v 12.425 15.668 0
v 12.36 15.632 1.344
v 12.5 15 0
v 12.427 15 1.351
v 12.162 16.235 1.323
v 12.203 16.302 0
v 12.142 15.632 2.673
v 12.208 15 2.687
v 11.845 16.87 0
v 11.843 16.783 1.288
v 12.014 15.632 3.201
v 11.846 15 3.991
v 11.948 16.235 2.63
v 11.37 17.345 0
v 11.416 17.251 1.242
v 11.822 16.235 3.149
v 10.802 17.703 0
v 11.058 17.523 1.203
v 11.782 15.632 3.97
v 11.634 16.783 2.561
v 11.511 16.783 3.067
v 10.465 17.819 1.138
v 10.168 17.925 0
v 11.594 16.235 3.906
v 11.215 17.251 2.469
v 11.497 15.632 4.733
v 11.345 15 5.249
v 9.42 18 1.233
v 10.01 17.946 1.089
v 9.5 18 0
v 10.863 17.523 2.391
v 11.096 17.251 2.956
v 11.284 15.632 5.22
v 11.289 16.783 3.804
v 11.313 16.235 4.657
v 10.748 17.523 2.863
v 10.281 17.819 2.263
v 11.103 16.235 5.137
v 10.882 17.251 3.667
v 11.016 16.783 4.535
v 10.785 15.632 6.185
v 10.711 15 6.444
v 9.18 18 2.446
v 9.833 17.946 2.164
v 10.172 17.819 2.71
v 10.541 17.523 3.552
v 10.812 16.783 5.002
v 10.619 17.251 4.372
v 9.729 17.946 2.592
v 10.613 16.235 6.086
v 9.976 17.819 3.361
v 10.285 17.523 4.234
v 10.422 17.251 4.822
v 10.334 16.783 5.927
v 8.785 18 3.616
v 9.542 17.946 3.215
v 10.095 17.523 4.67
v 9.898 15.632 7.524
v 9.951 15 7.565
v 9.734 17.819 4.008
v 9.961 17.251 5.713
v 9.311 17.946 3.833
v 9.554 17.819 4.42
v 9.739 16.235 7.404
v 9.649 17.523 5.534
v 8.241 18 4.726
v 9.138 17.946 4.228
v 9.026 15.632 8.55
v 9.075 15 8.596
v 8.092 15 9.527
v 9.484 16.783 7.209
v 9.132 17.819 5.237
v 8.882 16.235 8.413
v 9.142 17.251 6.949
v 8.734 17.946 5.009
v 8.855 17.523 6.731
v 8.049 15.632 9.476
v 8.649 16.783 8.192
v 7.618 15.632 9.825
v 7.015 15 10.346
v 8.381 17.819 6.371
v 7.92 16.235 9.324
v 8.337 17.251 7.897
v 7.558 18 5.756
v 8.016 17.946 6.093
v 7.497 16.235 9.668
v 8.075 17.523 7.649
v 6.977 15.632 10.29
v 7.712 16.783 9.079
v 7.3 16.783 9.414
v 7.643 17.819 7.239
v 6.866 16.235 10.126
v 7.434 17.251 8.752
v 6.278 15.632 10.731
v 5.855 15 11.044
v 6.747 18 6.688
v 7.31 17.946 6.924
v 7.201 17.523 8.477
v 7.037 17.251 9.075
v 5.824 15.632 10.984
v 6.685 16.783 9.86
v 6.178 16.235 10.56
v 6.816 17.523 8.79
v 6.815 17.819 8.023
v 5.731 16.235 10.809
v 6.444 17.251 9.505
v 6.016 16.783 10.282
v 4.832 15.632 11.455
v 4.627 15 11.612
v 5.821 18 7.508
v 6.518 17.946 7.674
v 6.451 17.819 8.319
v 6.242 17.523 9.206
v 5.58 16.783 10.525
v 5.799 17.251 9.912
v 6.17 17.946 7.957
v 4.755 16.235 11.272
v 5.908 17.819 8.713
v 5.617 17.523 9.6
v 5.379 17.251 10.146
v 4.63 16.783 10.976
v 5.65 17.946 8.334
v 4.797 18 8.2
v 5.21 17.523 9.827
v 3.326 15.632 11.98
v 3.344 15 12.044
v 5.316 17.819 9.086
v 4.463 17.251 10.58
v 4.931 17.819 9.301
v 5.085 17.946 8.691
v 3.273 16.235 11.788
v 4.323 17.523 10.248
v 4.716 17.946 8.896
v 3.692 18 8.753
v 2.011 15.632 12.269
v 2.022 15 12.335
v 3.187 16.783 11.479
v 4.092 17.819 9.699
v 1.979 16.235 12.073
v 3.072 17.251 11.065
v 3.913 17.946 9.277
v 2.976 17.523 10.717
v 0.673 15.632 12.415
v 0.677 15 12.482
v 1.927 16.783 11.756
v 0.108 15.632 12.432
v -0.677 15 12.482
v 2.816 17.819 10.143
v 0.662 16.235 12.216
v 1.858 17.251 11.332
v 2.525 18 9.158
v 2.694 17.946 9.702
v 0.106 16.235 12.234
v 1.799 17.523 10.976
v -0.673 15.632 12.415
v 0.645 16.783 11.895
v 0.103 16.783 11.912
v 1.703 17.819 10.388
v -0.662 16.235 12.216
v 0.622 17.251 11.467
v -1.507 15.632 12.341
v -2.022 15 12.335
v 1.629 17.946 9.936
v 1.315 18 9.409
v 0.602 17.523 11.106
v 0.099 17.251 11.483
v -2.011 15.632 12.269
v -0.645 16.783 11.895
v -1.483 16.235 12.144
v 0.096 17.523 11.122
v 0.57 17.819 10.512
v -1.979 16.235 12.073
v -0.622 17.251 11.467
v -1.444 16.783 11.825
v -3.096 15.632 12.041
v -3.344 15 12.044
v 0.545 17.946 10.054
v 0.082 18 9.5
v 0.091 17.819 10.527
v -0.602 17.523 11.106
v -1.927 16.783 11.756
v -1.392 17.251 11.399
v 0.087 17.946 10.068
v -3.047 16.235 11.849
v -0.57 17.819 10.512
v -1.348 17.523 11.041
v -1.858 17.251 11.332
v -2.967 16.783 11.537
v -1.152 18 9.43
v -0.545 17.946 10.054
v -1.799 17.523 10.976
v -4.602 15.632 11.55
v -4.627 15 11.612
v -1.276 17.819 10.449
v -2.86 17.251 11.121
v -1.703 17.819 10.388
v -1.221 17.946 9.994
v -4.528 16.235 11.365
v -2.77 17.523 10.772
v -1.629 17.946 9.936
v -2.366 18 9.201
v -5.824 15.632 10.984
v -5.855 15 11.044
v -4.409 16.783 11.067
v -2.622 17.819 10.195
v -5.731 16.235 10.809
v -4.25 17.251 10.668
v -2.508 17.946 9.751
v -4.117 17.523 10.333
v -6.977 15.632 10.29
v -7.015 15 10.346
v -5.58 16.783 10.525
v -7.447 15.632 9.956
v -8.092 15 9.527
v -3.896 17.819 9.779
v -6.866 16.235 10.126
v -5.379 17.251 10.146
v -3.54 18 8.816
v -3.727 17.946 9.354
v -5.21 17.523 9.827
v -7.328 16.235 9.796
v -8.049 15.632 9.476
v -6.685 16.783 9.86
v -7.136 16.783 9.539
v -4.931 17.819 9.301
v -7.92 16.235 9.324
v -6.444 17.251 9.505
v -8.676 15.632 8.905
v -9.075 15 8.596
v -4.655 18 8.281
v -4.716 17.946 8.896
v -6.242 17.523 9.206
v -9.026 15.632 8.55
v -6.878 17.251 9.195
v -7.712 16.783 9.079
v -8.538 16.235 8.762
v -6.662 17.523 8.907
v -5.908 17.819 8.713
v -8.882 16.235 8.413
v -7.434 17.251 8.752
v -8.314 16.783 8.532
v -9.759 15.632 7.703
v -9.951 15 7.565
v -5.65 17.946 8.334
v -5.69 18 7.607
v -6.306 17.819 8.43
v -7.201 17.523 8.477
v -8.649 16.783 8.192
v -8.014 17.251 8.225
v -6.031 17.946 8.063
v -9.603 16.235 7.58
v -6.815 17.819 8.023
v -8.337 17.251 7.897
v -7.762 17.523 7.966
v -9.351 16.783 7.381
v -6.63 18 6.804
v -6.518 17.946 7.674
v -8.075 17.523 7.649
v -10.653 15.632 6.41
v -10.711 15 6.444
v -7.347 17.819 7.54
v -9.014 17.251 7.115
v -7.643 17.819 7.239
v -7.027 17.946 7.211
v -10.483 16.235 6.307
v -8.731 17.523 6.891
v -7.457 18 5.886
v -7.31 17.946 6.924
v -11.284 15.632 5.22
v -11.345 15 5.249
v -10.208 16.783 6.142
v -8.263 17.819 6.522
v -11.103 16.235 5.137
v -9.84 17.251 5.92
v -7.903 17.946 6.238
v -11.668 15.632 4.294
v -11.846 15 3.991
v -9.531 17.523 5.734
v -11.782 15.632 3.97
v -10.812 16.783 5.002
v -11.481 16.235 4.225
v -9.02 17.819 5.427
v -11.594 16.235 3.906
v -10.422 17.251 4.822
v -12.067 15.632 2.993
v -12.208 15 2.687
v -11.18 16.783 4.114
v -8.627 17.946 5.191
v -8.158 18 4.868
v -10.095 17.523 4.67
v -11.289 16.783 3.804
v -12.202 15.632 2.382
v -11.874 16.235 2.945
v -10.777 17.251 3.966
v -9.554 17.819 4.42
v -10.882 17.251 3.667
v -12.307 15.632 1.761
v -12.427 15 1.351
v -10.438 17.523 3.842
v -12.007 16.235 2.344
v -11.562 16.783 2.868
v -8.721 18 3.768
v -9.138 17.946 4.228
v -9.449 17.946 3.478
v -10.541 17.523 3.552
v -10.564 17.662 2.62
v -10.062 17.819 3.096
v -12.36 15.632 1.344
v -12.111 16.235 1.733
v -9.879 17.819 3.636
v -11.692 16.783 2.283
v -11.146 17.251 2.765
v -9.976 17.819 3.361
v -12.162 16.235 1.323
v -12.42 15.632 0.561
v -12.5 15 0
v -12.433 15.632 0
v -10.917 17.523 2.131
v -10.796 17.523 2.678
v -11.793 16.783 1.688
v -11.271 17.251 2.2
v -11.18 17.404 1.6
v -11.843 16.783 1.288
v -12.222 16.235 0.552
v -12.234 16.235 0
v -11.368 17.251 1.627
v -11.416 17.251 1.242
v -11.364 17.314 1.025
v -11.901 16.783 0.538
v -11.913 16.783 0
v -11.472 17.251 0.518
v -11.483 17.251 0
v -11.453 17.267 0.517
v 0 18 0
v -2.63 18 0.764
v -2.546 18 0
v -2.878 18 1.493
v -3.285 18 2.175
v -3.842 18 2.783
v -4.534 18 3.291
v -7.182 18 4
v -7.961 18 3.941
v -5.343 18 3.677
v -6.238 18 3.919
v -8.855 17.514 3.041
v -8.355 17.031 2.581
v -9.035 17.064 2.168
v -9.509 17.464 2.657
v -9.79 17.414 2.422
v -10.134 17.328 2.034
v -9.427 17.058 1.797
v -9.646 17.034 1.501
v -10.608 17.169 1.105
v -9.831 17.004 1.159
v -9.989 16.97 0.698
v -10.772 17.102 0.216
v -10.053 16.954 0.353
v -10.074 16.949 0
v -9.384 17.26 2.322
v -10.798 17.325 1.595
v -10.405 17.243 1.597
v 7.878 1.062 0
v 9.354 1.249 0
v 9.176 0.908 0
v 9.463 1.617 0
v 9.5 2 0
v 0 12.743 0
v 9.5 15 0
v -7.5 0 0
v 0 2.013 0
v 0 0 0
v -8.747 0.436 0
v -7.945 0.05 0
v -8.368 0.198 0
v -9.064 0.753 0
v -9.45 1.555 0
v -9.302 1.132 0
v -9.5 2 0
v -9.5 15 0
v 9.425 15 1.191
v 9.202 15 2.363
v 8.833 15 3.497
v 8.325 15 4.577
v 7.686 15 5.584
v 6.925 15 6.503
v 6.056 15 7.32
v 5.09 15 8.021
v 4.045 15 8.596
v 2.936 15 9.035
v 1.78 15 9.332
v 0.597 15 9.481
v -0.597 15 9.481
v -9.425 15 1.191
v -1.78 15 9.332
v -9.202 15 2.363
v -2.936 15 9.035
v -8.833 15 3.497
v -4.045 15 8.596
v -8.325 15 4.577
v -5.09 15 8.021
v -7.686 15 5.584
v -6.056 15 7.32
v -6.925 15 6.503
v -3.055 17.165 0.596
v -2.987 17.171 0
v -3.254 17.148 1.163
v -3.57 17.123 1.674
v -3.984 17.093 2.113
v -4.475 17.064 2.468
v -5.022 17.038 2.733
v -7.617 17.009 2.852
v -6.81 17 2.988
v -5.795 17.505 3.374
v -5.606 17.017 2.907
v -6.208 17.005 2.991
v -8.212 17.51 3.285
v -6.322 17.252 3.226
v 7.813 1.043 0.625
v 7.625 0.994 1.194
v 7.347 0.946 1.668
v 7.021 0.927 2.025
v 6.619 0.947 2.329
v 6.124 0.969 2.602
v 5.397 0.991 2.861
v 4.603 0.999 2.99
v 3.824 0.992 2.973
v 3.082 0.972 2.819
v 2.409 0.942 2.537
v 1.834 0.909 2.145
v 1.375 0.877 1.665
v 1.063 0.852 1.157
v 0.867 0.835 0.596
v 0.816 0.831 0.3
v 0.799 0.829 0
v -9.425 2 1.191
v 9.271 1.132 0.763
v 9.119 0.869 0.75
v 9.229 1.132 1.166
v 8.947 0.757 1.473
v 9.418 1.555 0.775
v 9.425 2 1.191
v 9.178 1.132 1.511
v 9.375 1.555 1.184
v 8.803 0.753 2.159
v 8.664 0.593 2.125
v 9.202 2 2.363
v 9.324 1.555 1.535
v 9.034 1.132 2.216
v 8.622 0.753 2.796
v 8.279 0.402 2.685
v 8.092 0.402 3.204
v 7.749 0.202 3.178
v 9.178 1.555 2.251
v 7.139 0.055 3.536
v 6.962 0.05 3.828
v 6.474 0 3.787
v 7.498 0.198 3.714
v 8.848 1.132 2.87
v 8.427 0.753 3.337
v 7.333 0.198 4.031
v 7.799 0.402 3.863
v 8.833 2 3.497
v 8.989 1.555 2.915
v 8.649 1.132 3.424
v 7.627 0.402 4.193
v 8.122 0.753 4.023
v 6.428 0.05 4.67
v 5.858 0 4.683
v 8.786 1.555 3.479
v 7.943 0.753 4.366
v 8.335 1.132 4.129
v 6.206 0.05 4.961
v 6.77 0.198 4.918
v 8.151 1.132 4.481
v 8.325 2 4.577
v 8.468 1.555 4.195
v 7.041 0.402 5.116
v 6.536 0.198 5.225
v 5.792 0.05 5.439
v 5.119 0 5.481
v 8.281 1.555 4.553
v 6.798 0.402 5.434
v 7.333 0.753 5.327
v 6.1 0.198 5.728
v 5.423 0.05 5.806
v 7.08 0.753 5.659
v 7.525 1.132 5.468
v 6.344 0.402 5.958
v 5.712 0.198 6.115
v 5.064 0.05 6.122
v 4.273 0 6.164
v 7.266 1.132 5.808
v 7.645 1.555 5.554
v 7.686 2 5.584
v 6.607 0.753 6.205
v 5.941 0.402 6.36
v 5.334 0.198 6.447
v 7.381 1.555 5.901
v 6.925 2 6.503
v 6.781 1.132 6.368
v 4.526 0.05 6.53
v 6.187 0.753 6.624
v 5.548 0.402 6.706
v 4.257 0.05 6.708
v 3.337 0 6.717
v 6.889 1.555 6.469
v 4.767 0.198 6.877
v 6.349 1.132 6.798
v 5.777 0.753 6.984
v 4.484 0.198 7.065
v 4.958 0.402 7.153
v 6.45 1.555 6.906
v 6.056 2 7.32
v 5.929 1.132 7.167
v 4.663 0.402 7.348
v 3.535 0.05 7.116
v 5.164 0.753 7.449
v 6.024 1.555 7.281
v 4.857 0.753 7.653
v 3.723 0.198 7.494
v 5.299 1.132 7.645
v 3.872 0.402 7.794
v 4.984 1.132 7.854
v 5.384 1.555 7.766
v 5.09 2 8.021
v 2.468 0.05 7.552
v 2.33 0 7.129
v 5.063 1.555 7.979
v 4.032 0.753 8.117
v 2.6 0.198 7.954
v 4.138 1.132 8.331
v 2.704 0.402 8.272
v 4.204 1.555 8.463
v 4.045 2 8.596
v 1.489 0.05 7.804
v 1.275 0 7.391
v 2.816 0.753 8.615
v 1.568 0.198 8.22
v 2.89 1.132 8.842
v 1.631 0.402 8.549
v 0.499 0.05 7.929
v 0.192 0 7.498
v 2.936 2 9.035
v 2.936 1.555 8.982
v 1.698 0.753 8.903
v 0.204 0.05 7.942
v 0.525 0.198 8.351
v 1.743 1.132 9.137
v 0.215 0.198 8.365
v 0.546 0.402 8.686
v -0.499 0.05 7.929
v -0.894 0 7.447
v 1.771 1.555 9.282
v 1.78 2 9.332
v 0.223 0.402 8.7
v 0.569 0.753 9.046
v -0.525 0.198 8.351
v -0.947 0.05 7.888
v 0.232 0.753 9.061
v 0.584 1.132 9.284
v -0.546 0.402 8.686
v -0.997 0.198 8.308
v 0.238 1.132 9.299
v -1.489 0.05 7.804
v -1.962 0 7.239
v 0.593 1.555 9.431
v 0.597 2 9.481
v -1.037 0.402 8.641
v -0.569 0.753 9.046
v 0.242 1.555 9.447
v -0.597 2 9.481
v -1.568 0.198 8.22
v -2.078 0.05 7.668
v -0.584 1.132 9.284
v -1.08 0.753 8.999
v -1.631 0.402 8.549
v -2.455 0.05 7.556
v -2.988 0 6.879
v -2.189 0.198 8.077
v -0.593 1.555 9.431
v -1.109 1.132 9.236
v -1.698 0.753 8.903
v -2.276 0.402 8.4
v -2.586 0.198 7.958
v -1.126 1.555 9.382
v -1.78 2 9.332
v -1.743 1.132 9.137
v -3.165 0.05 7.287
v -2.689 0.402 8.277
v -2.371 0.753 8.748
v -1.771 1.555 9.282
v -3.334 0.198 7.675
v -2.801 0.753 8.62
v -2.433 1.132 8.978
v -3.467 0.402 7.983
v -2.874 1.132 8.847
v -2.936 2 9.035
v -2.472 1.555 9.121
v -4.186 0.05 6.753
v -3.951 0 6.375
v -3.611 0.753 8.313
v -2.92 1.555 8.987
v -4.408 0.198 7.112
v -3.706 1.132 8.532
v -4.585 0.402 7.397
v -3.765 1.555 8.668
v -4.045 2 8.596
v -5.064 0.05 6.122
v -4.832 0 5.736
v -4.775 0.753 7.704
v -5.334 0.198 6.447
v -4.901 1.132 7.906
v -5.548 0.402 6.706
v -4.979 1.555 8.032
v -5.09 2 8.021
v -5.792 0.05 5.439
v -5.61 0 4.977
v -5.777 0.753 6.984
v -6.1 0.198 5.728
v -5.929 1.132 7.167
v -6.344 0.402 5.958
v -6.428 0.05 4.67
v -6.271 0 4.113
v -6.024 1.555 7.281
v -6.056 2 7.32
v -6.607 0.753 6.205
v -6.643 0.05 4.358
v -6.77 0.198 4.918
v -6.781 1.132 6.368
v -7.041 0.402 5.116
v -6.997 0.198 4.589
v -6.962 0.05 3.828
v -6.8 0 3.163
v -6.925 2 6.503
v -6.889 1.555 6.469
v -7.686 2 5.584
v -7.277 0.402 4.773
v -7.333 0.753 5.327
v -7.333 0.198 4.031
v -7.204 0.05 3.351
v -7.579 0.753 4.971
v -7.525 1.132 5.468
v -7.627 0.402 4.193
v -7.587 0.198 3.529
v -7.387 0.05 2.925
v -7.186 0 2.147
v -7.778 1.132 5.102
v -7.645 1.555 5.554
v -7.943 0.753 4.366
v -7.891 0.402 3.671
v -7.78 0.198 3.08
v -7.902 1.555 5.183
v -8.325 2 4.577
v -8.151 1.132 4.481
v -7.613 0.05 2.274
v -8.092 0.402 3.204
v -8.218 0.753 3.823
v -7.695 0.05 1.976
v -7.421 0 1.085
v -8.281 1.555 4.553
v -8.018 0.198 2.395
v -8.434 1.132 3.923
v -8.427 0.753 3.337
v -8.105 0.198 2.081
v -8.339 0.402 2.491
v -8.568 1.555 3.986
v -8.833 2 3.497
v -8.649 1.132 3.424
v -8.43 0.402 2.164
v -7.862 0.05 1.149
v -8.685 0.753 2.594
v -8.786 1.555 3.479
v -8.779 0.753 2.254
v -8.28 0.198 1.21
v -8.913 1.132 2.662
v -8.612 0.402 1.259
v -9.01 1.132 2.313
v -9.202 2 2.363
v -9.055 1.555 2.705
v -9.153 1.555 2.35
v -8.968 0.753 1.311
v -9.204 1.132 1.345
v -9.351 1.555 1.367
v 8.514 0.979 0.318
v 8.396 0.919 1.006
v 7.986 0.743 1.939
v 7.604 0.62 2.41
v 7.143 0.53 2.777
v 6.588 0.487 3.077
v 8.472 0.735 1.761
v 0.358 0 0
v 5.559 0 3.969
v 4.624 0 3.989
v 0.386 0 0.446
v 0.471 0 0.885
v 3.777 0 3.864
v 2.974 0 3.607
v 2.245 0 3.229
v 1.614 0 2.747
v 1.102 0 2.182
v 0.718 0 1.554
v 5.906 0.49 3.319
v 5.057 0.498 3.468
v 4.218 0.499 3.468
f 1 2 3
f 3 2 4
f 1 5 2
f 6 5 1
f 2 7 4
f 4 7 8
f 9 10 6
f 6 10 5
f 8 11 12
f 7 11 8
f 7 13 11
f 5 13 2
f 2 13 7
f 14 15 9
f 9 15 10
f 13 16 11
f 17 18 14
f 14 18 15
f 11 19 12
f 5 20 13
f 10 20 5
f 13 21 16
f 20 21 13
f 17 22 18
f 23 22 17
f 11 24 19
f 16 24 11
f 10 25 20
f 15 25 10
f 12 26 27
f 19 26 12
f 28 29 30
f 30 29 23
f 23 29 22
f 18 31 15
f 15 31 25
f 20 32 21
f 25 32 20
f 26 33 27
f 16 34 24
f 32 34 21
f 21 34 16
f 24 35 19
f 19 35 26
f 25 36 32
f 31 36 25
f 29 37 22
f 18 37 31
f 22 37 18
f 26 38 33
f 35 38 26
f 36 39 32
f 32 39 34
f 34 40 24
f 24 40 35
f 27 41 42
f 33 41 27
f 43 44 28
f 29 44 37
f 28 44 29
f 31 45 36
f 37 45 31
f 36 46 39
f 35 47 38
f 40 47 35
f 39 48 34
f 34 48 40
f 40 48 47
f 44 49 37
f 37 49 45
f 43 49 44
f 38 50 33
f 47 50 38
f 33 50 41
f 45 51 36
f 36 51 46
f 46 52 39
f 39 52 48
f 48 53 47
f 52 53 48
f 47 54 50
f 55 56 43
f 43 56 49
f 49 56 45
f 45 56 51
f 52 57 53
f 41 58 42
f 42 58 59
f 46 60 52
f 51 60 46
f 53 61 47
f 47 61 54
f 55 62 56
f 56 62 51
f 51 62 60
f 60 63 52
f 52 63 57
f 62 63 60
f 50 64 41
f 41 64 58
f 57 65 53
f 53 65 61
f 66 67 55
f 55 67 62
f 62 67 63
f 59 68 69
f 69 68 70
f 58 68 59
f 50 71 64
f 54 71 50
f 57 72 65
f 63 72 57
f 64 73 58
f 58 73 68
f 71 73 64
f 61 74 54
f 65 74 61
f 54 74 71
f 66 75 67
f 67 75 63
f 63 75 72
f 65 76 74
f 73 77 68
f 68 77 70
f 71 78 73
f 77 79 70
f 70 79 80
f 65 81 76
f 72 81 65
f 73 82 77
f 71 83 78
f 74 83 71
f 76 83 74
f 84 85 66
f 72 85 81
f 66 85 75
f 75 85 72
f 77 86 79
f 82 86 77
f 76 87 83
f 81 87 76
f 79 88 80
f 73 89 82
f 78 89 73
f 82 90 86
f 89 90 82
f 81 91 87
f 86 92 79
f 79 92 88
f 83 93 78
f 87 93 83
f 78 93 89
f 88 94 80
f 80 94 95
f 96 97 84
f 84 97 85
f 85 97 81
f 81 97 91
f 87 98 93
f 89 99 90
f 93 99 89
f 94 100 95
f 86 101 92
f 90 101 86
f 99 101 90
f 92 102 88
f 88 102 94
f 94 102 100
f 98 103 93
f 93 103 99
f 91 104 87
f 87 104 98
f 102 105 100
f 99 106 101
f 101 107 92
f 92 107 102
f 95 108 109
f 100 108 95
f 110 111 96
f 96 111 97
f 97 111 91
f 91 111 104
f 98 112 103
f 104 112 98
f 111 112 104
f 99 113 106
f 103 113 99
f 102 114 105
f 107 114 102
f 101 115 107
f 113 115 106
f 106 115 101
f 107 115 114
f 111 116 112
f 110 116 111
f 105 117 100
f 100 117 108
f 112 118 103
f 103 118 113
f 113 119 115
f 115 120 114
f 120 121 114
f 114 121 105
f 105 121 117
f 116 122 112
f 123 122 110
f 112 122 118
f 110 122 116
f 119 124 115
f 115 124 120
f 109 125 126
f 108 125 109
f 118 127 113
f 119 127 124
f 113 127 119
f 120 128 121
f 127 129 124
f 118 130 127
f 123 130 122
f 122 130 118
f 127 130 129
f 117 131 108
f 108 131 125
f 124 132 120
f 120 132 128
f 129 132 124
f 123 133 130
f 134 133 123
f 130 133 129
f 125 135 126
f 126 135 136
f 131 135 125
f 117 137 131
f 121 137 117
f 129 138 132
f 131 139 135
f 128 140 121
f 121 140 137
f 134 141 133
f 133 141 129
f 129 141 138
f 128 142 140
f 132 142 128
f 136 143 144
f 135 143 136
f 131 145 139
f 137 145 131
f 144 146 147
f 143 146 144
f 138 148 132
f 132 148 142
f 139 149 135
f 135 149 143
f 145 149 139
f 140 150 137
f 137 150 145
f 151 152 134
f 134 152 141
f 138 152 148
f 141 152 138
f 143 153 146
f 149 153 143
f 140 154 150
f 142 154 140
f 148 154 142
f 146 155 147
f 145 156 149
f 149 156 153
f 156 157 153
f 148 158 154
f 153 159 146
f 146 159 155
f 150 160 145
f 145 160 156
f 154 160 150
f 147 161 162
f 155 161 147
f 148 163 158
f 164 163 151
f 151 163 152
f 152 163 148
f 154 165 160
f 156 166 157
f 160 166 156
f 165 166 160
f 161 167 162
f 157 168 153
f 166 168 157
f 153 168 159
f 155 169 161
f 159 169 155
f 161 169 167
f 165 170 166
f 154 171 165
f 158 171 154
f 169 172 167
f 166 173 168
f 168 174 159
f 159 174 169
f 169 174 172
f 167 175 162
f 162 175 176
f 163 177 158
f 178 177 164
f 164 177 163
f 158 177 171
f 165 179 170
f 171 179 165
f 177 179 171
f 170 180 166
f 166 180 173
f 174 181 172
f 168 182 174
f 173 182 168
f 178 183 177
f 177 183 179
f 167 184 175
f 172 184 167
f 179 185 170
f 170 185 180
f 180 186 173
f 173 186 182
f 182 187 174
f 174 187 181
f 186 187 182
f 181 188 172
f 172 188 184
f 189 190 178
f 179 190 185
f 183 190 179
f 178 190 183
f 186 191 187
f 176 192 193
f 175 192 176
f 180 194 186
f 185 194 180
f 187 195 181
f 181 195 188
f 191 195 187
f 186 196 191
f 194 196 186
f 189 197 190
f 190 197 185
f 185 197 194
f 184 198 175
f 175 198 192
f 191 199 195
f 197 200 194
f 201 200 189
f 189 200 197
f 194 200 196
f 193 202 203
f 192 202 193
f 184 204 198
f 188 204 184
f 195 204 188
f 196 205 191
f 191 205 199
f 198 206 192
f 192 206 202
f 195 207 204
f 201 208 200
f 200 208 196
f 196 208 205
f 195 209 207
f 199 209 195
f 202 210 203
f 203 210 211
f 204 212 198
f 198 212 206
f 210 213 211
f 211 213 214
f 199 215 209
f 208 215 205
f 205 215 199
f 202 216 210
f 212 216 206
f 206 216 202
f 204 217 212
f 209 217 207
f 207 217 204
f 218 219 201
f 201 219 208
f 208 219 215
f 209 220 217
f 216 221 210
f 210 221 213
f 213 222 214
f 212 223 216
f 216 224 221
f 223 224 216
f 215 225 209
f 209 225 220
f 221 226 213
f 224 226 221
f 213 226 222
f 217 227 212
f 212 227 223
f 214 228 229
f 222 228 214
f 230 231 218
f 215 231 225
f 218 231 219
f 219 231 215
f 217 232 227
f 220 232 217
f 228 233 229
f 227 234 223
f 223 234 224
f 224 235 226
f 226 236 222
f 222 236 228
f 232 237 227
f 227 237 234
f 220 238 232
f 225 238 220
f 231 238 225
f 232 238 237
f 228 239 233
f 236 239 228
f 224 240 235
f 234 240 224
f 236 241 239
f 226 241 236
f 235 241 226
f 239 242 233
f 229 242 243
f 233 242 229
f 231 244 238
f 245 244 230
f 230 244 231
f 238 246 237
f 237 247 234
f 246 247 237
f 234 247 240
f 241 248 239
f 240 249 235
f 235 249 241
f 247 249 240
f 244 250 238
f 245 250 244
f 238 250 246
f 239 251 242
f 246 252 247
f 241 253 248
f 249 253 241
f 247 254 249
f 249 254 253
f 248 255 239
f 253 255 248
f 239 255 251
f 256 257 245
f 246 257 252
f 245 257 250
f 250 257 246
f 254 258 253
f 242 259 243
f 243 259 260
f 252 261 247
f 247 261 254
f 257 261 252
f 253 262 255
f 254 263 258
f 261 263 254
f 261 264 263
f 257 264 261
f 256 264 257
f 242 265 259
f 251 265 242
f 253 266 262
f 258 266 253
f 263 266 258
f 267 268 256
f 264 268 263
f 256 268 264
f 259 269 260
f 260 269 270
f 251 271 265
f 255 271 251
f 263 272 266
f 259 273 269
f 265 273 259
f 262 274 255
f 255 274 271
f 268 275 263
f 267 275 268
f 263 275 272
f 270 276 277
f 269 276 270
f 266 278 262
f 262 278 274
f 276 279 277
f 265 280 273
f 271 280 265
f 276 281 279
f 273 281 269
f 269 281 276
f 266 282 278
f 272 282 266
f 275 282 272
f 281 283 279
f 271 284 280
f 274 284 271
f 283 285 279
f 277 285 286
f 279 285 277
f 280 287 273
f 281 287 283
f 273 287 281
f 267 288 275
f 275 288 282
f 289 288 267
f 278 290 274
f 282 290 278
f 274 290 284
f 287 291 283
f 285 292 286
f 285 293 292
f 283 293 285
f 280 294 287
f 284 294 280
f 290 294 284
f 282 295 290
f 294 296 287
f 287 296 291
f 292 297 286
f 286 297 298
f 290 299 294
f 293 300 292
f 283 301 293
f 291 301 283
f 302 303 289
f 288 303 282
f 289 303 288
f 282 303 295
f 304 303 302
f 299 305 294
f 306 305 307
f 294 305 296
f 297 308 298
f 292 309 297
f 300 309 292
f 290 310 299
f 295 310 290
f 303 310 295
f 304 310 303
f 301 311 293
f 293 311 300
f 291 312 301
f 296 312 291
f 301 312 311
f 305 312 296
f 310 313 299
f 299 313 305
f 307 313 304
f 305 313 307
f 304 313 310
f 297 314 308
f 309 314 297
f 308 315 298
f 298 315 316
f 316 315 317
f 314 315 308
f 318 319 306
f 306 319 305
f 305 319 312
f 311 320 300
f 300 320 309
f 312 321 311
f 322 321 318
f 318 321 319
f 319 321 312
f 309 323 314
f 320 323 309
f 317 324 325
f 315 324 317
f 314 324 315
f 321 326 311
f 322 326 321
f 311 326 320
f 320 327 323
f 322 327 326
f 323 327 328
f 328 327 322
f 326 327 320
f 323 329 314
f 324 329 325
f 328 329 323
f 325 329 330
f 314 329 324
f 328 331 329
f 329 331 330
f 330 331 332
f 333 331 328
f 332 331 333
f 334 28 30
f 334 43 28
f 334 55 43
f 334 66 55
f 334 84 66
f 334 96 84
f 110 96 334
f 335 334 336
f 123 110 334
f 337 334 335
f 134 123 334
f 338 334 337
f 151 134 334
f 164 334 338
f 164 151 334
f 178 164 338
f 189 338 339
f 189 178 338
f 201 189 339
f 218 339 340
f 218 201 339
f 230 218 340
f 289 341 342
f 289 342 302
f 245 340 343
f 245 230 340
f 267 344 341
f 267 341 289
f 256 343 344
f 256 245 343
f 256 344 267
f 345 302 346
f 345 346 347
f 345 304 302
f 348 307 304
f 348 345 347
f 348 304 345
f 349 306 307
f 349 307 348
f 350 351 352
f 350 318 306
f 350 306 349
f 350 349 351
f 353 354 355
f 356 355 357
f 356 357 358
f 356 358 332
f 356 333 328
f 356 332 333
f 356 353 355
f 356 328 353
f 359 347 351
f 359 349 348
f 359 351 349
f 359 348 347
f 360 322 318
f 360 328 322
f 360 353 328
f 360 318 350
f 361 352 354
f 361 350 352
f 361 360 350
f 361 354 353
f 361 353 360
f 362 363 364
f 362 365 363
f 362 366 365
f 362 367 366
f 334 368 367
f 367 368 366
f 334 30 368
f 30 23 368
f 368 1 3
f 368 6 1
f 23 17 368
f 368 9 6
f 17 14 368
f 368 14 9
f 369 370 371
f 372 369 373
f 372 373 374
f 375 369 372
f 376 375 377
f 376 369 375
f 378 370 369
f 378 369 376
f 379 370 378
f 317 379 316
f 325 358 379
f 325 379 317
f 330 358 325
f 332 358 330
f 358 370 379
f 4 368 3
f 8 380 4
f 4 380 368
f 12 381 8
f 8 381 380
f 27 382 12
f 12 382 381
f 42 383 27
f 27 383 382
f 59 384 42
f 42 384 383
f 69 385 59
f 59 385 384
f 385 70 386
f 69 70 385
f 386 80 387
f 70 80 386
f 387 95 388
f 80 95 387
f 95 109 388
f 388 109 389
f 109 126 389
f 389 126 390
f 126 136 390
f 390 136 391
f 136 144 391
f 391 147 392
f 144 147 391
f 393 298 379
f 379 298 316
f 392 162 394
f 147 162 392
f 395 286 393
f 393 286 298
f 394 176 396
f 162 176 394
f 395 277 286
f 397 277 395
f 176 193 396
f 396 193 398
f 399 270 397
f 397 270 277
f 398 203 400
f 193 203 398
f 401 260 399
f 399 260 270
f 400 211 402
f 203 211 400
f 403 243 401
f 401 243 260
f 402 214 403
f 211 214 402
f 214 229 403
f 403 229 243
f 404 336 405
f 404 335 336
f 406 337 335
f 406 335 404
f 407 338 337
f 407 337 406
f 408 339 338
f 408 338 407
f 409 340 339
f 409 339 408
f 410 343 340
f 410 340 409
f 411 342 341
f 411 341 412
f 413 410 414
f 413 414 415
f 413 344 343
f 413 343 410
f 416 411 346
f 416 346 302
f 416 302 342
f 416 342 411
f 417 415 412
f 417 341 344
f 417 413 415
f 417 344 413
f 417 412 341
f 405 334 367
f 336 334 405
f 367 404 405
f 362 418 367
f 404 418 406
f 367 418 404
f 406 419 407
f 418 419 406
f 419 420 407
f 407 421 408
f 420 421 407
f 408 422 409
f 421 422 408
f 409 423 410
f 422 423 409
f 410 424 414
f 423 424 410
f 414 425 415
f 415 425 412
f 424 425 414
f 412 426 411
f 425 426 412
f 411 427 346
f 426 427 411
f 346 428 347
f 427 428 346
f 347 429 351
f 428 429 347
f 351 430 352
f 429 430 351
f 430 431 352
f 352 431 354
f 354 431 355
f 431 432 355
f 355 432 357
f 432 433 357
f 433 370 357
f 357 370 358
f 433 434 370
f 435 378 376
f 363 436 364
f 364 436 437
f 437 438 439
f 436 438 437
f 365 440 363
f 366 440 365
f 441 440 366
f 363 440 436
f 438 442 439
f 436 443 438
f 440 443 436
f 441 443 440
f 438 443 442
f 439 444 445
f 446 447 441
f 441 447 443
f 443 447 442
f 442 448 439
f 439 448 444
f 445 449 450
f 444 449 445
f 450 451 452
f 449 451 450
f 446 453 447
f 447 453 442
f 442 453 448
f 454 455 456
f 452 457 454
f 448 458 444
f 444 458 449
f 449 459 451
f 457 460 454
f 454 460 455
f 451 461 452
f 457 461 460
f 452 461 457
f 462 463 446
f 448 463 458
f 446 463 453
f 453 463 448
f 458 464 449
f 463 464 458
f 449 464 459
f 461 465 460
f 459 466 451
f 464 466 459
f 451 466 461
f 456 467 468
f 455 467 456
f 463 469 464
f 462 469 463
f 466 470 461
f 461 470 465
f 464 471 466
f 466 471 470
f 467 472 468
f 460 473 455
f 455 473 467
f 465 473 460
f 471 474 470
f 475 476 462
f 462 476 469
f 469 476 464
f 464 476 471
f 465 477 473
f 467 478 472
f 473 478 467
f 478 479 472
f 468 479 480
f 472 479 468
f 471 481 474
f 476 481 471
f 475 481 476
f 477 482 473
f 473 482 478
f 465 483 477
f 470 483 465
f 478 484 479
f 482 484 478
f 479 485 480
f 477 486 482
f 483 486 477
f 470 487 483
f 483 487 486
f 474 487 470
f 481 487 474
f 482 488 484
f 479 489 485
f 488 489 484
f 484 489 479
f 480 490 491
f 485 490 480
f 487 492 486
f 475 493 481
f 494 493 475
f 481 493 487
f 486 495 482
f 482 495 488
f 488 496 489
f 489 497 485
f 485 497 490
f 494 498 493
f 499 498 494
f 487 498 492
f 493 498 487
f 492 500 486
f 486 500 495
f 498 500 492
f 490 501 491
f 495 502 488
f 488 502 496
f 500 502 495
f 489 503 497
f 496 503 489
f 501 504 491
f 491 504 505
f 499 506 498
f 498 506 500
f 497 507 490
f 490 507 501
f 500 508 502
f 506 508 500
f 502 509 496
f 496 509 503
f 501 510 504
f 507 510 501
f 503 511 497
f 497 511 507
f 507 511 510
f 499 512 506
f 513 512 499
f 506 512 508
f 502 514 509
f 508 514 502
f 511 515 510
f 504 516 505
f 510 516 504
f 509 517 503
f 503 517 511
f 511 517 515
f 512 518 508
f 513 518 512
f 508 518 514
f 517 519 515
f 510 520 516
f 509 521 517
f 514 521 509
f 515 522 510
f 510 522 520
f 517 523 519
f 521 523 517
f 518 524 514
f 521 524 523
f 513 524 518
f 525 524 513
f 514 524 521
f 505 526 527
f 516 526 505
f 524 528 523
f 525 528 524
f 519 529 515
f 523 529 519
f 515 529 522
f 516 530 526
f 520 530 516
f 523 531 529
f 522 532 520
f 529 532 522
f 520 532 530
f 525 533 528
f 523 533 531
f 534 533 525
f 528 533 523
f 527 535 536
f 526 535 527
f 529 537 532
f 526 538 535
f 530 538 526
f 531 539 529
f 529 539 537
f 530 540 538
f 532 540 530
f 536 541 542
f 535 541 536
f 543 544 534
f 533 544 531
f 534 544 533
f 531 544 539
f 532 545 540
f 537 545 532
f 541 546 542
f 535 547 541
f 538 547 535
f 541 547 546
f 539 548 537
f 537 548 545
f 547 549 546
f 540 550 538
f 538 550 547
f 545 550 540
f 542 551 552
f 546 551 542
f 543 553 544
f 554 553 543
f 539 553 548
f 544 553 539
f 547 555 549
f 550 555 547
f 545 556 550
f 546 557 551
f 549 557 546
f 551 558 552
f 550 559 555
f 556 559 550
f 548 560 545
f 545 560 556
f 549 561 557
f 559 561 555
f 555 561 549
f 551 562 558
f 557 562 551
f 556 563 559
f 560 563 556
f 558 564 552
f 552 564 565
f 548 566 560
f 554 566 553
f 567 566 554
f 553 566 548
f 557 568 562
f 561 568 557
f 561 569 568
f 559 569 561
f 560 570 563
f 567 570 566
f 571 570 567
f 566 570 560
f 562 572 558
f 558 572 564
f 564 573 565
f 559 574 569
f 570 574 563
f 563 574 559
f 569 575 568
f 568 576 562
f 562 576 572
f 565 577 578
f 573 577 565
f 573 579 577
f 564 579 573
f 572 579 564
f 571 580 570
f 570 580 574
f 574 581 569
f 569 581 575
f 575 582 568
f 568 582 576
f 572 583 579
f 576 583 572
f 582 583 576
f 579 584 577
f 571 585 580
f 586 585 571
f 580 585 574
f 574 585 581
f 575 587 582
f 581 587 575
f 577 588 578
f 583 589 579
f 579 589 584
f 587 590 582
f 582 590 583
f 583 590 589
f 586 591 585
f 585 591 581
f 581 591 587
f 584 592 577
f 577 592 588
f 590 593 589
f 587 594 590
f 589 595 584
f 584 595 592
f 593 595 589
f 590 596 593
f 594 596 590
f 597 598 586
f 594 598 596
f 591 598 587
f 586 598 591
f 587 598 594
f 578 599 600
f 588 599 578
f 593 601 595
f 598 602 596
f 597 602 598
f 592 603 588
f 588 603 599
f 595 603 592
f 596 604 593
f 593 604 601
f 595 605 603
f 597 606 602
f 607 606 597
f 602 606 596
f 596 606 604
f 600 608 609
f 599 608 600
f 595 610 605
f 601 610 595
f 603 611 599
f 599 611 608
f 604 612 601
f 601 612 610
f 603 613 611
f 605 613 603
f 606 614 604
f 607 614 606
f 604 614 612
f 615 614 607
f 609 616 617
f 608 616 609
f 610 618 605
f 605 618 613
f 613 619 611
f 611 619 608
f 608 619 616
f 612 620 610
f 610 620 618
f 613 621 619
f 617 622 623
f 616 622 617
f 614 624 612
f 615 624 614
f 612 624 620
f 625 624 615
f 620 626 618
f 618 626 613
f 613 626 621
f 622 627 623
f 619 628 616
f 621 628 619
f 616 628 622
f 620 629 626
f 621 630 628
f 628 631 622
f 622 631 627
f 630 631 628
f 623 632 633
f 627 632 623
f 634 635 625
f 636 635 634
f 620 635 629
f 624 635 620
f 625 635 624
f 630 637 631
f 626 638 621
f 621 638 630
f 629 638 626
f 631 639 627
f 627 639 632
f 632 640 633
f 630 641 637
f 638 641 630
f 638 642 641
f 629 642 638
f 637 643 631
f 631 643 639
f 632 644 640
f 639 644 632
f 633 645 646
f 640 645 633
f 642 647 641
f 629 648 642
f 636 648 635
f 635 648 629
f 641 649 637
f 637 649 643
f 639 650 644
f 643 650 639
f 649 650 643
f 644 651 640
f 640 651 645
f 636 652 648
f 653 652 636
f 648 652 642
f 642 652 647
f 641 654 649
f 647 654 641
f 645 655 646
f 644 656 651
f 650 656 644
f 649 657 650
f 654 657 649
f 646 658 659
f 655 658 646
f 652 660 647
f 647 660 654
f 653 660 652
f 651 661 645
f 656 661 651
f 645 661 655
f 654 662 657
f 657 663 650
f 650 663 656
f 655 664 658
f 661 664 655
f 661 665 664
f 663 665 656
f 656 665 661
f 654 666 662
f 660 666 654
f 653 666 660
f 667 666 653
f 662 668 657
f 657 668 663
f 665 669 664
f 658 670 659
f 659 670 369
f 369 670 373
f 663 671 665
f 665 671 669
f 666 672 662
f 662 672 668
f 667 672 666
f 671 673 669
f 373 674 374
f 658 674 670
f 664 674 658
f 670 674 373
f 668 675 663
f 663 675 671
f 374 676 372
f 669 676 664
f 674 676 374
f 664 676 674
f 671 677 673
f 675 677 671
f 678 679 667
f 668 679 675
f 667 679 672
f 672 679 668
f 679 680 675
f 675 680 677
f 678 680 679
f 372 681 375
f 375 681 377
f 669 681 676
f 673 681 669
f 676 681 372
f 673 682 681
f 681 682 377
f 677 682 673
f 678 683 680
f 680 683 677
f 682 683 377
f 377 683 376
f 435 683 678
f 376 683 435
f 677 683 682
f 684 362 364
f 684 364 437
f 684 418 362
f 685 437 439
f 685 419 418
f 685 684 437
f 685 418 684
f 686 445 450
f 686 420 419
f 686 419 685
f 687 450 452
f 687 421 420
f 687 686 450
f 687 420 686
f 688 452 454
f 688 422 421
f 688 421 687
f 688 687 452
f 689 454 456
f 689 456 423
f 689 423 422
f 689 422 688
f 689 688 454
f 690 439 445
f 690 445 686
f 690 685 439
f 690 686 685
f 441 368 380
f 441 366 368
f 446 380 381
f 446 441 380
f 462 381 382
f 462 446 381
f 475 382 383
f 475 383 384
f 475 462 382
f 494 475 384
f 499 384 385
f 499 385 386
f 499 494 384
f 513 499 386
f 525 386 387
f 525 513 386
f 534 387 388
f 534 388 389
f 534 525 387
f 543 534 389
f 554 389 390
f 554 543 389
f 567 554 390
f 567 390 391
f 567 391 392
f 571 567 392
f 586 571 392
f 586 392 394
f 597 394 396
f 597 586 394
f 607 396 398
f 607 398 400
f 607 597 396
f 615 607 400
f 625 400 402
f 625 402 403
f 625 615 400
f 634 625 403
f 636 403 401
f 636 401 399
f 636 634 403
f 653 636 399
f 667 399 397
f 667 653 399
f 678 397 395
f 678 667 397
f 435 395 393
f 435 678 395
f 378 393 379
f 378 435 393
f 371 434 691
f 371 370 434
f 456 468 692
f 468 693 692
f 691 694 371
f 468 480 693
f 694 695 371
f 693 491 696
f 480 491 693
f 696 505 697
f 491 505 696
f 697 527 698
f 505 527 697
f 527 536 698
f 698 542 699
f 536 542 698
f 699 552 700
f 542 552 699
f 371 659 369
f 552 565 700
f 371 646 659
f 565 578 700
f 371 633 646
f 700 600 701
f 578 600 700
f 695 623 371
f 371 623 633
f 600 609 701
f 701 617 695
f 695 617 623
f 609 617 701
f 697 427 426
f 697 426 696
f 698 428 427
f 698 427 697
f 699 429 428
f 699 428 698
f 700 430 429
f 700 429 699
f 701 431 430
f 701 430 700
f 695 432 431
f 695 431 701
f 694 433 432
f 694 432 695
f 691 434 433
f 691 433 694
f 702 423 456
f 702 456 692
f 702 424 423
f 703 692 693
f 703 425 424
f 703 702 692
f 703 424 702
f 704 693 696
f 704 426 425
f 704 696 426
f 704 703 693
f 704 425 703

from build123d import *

# Parameters (mm, degrees)
SKETCH001_R             = 3
PAD_DEPTH               = 29
BODY001_PLACEMENT_ANGLE = 34
REVOLUTION_ANGLE        = -180
CHAMFER_SIZE            = 1


with BuildPart() as body001:
    # Sketch001 → Pad (new body)
    with BuildSketch(Plane.XZ):
        Circle(SKETCH001_R)
    extrude(amount=-PAD_DEPTH)


with BuildPart() as body001_1:
    # Body001 placement: moved
    add(body001.part.moved(Location((7, -3, 0))).rotate(Axis((7, -3, 0), (0, 0, 1)), BODY001_PLACEMENT_ANGLE))


with BuildPart() as body:
    # Sketch → Revolution (revolve)
    with BuildSketch(Plane.XY):
        with BuildLine():
            Line((9.5, 15), (12.5, 15))
            ThreePointArc((12.5, 15), (11.62132, 17.12132), (9.5, 18))
            Line((0, 18), (9.5, 18))
            Line((0, 0), (0, 18))
            Line((0, 0), (7.5, 0))
            ThreePointArc((7.5, 0), (8.914214, 0.585786), (9.5, 2))
            Line((9.5, 15), (9.5, 2))
        make_face()
    revolve(axis=Axis((0, 0, 0), (0, 1, 0)), revolution_arc=REVOLUTION_ANGLE)

    # Boolean: cut Body001
    add(body001_1.part, mode=Mode.SUBTRACT)

    # Chamfer
    chamfer_edges = [body.edges().sort_by_distance(p)[0] for p in [
        (-5.63609, 18, 2.719202),
        (3.511353, 0, 2.743109),
    ]]
    chamfer(chamfer_edges, length=CHAMFER_SIZE)


solid = body.part
